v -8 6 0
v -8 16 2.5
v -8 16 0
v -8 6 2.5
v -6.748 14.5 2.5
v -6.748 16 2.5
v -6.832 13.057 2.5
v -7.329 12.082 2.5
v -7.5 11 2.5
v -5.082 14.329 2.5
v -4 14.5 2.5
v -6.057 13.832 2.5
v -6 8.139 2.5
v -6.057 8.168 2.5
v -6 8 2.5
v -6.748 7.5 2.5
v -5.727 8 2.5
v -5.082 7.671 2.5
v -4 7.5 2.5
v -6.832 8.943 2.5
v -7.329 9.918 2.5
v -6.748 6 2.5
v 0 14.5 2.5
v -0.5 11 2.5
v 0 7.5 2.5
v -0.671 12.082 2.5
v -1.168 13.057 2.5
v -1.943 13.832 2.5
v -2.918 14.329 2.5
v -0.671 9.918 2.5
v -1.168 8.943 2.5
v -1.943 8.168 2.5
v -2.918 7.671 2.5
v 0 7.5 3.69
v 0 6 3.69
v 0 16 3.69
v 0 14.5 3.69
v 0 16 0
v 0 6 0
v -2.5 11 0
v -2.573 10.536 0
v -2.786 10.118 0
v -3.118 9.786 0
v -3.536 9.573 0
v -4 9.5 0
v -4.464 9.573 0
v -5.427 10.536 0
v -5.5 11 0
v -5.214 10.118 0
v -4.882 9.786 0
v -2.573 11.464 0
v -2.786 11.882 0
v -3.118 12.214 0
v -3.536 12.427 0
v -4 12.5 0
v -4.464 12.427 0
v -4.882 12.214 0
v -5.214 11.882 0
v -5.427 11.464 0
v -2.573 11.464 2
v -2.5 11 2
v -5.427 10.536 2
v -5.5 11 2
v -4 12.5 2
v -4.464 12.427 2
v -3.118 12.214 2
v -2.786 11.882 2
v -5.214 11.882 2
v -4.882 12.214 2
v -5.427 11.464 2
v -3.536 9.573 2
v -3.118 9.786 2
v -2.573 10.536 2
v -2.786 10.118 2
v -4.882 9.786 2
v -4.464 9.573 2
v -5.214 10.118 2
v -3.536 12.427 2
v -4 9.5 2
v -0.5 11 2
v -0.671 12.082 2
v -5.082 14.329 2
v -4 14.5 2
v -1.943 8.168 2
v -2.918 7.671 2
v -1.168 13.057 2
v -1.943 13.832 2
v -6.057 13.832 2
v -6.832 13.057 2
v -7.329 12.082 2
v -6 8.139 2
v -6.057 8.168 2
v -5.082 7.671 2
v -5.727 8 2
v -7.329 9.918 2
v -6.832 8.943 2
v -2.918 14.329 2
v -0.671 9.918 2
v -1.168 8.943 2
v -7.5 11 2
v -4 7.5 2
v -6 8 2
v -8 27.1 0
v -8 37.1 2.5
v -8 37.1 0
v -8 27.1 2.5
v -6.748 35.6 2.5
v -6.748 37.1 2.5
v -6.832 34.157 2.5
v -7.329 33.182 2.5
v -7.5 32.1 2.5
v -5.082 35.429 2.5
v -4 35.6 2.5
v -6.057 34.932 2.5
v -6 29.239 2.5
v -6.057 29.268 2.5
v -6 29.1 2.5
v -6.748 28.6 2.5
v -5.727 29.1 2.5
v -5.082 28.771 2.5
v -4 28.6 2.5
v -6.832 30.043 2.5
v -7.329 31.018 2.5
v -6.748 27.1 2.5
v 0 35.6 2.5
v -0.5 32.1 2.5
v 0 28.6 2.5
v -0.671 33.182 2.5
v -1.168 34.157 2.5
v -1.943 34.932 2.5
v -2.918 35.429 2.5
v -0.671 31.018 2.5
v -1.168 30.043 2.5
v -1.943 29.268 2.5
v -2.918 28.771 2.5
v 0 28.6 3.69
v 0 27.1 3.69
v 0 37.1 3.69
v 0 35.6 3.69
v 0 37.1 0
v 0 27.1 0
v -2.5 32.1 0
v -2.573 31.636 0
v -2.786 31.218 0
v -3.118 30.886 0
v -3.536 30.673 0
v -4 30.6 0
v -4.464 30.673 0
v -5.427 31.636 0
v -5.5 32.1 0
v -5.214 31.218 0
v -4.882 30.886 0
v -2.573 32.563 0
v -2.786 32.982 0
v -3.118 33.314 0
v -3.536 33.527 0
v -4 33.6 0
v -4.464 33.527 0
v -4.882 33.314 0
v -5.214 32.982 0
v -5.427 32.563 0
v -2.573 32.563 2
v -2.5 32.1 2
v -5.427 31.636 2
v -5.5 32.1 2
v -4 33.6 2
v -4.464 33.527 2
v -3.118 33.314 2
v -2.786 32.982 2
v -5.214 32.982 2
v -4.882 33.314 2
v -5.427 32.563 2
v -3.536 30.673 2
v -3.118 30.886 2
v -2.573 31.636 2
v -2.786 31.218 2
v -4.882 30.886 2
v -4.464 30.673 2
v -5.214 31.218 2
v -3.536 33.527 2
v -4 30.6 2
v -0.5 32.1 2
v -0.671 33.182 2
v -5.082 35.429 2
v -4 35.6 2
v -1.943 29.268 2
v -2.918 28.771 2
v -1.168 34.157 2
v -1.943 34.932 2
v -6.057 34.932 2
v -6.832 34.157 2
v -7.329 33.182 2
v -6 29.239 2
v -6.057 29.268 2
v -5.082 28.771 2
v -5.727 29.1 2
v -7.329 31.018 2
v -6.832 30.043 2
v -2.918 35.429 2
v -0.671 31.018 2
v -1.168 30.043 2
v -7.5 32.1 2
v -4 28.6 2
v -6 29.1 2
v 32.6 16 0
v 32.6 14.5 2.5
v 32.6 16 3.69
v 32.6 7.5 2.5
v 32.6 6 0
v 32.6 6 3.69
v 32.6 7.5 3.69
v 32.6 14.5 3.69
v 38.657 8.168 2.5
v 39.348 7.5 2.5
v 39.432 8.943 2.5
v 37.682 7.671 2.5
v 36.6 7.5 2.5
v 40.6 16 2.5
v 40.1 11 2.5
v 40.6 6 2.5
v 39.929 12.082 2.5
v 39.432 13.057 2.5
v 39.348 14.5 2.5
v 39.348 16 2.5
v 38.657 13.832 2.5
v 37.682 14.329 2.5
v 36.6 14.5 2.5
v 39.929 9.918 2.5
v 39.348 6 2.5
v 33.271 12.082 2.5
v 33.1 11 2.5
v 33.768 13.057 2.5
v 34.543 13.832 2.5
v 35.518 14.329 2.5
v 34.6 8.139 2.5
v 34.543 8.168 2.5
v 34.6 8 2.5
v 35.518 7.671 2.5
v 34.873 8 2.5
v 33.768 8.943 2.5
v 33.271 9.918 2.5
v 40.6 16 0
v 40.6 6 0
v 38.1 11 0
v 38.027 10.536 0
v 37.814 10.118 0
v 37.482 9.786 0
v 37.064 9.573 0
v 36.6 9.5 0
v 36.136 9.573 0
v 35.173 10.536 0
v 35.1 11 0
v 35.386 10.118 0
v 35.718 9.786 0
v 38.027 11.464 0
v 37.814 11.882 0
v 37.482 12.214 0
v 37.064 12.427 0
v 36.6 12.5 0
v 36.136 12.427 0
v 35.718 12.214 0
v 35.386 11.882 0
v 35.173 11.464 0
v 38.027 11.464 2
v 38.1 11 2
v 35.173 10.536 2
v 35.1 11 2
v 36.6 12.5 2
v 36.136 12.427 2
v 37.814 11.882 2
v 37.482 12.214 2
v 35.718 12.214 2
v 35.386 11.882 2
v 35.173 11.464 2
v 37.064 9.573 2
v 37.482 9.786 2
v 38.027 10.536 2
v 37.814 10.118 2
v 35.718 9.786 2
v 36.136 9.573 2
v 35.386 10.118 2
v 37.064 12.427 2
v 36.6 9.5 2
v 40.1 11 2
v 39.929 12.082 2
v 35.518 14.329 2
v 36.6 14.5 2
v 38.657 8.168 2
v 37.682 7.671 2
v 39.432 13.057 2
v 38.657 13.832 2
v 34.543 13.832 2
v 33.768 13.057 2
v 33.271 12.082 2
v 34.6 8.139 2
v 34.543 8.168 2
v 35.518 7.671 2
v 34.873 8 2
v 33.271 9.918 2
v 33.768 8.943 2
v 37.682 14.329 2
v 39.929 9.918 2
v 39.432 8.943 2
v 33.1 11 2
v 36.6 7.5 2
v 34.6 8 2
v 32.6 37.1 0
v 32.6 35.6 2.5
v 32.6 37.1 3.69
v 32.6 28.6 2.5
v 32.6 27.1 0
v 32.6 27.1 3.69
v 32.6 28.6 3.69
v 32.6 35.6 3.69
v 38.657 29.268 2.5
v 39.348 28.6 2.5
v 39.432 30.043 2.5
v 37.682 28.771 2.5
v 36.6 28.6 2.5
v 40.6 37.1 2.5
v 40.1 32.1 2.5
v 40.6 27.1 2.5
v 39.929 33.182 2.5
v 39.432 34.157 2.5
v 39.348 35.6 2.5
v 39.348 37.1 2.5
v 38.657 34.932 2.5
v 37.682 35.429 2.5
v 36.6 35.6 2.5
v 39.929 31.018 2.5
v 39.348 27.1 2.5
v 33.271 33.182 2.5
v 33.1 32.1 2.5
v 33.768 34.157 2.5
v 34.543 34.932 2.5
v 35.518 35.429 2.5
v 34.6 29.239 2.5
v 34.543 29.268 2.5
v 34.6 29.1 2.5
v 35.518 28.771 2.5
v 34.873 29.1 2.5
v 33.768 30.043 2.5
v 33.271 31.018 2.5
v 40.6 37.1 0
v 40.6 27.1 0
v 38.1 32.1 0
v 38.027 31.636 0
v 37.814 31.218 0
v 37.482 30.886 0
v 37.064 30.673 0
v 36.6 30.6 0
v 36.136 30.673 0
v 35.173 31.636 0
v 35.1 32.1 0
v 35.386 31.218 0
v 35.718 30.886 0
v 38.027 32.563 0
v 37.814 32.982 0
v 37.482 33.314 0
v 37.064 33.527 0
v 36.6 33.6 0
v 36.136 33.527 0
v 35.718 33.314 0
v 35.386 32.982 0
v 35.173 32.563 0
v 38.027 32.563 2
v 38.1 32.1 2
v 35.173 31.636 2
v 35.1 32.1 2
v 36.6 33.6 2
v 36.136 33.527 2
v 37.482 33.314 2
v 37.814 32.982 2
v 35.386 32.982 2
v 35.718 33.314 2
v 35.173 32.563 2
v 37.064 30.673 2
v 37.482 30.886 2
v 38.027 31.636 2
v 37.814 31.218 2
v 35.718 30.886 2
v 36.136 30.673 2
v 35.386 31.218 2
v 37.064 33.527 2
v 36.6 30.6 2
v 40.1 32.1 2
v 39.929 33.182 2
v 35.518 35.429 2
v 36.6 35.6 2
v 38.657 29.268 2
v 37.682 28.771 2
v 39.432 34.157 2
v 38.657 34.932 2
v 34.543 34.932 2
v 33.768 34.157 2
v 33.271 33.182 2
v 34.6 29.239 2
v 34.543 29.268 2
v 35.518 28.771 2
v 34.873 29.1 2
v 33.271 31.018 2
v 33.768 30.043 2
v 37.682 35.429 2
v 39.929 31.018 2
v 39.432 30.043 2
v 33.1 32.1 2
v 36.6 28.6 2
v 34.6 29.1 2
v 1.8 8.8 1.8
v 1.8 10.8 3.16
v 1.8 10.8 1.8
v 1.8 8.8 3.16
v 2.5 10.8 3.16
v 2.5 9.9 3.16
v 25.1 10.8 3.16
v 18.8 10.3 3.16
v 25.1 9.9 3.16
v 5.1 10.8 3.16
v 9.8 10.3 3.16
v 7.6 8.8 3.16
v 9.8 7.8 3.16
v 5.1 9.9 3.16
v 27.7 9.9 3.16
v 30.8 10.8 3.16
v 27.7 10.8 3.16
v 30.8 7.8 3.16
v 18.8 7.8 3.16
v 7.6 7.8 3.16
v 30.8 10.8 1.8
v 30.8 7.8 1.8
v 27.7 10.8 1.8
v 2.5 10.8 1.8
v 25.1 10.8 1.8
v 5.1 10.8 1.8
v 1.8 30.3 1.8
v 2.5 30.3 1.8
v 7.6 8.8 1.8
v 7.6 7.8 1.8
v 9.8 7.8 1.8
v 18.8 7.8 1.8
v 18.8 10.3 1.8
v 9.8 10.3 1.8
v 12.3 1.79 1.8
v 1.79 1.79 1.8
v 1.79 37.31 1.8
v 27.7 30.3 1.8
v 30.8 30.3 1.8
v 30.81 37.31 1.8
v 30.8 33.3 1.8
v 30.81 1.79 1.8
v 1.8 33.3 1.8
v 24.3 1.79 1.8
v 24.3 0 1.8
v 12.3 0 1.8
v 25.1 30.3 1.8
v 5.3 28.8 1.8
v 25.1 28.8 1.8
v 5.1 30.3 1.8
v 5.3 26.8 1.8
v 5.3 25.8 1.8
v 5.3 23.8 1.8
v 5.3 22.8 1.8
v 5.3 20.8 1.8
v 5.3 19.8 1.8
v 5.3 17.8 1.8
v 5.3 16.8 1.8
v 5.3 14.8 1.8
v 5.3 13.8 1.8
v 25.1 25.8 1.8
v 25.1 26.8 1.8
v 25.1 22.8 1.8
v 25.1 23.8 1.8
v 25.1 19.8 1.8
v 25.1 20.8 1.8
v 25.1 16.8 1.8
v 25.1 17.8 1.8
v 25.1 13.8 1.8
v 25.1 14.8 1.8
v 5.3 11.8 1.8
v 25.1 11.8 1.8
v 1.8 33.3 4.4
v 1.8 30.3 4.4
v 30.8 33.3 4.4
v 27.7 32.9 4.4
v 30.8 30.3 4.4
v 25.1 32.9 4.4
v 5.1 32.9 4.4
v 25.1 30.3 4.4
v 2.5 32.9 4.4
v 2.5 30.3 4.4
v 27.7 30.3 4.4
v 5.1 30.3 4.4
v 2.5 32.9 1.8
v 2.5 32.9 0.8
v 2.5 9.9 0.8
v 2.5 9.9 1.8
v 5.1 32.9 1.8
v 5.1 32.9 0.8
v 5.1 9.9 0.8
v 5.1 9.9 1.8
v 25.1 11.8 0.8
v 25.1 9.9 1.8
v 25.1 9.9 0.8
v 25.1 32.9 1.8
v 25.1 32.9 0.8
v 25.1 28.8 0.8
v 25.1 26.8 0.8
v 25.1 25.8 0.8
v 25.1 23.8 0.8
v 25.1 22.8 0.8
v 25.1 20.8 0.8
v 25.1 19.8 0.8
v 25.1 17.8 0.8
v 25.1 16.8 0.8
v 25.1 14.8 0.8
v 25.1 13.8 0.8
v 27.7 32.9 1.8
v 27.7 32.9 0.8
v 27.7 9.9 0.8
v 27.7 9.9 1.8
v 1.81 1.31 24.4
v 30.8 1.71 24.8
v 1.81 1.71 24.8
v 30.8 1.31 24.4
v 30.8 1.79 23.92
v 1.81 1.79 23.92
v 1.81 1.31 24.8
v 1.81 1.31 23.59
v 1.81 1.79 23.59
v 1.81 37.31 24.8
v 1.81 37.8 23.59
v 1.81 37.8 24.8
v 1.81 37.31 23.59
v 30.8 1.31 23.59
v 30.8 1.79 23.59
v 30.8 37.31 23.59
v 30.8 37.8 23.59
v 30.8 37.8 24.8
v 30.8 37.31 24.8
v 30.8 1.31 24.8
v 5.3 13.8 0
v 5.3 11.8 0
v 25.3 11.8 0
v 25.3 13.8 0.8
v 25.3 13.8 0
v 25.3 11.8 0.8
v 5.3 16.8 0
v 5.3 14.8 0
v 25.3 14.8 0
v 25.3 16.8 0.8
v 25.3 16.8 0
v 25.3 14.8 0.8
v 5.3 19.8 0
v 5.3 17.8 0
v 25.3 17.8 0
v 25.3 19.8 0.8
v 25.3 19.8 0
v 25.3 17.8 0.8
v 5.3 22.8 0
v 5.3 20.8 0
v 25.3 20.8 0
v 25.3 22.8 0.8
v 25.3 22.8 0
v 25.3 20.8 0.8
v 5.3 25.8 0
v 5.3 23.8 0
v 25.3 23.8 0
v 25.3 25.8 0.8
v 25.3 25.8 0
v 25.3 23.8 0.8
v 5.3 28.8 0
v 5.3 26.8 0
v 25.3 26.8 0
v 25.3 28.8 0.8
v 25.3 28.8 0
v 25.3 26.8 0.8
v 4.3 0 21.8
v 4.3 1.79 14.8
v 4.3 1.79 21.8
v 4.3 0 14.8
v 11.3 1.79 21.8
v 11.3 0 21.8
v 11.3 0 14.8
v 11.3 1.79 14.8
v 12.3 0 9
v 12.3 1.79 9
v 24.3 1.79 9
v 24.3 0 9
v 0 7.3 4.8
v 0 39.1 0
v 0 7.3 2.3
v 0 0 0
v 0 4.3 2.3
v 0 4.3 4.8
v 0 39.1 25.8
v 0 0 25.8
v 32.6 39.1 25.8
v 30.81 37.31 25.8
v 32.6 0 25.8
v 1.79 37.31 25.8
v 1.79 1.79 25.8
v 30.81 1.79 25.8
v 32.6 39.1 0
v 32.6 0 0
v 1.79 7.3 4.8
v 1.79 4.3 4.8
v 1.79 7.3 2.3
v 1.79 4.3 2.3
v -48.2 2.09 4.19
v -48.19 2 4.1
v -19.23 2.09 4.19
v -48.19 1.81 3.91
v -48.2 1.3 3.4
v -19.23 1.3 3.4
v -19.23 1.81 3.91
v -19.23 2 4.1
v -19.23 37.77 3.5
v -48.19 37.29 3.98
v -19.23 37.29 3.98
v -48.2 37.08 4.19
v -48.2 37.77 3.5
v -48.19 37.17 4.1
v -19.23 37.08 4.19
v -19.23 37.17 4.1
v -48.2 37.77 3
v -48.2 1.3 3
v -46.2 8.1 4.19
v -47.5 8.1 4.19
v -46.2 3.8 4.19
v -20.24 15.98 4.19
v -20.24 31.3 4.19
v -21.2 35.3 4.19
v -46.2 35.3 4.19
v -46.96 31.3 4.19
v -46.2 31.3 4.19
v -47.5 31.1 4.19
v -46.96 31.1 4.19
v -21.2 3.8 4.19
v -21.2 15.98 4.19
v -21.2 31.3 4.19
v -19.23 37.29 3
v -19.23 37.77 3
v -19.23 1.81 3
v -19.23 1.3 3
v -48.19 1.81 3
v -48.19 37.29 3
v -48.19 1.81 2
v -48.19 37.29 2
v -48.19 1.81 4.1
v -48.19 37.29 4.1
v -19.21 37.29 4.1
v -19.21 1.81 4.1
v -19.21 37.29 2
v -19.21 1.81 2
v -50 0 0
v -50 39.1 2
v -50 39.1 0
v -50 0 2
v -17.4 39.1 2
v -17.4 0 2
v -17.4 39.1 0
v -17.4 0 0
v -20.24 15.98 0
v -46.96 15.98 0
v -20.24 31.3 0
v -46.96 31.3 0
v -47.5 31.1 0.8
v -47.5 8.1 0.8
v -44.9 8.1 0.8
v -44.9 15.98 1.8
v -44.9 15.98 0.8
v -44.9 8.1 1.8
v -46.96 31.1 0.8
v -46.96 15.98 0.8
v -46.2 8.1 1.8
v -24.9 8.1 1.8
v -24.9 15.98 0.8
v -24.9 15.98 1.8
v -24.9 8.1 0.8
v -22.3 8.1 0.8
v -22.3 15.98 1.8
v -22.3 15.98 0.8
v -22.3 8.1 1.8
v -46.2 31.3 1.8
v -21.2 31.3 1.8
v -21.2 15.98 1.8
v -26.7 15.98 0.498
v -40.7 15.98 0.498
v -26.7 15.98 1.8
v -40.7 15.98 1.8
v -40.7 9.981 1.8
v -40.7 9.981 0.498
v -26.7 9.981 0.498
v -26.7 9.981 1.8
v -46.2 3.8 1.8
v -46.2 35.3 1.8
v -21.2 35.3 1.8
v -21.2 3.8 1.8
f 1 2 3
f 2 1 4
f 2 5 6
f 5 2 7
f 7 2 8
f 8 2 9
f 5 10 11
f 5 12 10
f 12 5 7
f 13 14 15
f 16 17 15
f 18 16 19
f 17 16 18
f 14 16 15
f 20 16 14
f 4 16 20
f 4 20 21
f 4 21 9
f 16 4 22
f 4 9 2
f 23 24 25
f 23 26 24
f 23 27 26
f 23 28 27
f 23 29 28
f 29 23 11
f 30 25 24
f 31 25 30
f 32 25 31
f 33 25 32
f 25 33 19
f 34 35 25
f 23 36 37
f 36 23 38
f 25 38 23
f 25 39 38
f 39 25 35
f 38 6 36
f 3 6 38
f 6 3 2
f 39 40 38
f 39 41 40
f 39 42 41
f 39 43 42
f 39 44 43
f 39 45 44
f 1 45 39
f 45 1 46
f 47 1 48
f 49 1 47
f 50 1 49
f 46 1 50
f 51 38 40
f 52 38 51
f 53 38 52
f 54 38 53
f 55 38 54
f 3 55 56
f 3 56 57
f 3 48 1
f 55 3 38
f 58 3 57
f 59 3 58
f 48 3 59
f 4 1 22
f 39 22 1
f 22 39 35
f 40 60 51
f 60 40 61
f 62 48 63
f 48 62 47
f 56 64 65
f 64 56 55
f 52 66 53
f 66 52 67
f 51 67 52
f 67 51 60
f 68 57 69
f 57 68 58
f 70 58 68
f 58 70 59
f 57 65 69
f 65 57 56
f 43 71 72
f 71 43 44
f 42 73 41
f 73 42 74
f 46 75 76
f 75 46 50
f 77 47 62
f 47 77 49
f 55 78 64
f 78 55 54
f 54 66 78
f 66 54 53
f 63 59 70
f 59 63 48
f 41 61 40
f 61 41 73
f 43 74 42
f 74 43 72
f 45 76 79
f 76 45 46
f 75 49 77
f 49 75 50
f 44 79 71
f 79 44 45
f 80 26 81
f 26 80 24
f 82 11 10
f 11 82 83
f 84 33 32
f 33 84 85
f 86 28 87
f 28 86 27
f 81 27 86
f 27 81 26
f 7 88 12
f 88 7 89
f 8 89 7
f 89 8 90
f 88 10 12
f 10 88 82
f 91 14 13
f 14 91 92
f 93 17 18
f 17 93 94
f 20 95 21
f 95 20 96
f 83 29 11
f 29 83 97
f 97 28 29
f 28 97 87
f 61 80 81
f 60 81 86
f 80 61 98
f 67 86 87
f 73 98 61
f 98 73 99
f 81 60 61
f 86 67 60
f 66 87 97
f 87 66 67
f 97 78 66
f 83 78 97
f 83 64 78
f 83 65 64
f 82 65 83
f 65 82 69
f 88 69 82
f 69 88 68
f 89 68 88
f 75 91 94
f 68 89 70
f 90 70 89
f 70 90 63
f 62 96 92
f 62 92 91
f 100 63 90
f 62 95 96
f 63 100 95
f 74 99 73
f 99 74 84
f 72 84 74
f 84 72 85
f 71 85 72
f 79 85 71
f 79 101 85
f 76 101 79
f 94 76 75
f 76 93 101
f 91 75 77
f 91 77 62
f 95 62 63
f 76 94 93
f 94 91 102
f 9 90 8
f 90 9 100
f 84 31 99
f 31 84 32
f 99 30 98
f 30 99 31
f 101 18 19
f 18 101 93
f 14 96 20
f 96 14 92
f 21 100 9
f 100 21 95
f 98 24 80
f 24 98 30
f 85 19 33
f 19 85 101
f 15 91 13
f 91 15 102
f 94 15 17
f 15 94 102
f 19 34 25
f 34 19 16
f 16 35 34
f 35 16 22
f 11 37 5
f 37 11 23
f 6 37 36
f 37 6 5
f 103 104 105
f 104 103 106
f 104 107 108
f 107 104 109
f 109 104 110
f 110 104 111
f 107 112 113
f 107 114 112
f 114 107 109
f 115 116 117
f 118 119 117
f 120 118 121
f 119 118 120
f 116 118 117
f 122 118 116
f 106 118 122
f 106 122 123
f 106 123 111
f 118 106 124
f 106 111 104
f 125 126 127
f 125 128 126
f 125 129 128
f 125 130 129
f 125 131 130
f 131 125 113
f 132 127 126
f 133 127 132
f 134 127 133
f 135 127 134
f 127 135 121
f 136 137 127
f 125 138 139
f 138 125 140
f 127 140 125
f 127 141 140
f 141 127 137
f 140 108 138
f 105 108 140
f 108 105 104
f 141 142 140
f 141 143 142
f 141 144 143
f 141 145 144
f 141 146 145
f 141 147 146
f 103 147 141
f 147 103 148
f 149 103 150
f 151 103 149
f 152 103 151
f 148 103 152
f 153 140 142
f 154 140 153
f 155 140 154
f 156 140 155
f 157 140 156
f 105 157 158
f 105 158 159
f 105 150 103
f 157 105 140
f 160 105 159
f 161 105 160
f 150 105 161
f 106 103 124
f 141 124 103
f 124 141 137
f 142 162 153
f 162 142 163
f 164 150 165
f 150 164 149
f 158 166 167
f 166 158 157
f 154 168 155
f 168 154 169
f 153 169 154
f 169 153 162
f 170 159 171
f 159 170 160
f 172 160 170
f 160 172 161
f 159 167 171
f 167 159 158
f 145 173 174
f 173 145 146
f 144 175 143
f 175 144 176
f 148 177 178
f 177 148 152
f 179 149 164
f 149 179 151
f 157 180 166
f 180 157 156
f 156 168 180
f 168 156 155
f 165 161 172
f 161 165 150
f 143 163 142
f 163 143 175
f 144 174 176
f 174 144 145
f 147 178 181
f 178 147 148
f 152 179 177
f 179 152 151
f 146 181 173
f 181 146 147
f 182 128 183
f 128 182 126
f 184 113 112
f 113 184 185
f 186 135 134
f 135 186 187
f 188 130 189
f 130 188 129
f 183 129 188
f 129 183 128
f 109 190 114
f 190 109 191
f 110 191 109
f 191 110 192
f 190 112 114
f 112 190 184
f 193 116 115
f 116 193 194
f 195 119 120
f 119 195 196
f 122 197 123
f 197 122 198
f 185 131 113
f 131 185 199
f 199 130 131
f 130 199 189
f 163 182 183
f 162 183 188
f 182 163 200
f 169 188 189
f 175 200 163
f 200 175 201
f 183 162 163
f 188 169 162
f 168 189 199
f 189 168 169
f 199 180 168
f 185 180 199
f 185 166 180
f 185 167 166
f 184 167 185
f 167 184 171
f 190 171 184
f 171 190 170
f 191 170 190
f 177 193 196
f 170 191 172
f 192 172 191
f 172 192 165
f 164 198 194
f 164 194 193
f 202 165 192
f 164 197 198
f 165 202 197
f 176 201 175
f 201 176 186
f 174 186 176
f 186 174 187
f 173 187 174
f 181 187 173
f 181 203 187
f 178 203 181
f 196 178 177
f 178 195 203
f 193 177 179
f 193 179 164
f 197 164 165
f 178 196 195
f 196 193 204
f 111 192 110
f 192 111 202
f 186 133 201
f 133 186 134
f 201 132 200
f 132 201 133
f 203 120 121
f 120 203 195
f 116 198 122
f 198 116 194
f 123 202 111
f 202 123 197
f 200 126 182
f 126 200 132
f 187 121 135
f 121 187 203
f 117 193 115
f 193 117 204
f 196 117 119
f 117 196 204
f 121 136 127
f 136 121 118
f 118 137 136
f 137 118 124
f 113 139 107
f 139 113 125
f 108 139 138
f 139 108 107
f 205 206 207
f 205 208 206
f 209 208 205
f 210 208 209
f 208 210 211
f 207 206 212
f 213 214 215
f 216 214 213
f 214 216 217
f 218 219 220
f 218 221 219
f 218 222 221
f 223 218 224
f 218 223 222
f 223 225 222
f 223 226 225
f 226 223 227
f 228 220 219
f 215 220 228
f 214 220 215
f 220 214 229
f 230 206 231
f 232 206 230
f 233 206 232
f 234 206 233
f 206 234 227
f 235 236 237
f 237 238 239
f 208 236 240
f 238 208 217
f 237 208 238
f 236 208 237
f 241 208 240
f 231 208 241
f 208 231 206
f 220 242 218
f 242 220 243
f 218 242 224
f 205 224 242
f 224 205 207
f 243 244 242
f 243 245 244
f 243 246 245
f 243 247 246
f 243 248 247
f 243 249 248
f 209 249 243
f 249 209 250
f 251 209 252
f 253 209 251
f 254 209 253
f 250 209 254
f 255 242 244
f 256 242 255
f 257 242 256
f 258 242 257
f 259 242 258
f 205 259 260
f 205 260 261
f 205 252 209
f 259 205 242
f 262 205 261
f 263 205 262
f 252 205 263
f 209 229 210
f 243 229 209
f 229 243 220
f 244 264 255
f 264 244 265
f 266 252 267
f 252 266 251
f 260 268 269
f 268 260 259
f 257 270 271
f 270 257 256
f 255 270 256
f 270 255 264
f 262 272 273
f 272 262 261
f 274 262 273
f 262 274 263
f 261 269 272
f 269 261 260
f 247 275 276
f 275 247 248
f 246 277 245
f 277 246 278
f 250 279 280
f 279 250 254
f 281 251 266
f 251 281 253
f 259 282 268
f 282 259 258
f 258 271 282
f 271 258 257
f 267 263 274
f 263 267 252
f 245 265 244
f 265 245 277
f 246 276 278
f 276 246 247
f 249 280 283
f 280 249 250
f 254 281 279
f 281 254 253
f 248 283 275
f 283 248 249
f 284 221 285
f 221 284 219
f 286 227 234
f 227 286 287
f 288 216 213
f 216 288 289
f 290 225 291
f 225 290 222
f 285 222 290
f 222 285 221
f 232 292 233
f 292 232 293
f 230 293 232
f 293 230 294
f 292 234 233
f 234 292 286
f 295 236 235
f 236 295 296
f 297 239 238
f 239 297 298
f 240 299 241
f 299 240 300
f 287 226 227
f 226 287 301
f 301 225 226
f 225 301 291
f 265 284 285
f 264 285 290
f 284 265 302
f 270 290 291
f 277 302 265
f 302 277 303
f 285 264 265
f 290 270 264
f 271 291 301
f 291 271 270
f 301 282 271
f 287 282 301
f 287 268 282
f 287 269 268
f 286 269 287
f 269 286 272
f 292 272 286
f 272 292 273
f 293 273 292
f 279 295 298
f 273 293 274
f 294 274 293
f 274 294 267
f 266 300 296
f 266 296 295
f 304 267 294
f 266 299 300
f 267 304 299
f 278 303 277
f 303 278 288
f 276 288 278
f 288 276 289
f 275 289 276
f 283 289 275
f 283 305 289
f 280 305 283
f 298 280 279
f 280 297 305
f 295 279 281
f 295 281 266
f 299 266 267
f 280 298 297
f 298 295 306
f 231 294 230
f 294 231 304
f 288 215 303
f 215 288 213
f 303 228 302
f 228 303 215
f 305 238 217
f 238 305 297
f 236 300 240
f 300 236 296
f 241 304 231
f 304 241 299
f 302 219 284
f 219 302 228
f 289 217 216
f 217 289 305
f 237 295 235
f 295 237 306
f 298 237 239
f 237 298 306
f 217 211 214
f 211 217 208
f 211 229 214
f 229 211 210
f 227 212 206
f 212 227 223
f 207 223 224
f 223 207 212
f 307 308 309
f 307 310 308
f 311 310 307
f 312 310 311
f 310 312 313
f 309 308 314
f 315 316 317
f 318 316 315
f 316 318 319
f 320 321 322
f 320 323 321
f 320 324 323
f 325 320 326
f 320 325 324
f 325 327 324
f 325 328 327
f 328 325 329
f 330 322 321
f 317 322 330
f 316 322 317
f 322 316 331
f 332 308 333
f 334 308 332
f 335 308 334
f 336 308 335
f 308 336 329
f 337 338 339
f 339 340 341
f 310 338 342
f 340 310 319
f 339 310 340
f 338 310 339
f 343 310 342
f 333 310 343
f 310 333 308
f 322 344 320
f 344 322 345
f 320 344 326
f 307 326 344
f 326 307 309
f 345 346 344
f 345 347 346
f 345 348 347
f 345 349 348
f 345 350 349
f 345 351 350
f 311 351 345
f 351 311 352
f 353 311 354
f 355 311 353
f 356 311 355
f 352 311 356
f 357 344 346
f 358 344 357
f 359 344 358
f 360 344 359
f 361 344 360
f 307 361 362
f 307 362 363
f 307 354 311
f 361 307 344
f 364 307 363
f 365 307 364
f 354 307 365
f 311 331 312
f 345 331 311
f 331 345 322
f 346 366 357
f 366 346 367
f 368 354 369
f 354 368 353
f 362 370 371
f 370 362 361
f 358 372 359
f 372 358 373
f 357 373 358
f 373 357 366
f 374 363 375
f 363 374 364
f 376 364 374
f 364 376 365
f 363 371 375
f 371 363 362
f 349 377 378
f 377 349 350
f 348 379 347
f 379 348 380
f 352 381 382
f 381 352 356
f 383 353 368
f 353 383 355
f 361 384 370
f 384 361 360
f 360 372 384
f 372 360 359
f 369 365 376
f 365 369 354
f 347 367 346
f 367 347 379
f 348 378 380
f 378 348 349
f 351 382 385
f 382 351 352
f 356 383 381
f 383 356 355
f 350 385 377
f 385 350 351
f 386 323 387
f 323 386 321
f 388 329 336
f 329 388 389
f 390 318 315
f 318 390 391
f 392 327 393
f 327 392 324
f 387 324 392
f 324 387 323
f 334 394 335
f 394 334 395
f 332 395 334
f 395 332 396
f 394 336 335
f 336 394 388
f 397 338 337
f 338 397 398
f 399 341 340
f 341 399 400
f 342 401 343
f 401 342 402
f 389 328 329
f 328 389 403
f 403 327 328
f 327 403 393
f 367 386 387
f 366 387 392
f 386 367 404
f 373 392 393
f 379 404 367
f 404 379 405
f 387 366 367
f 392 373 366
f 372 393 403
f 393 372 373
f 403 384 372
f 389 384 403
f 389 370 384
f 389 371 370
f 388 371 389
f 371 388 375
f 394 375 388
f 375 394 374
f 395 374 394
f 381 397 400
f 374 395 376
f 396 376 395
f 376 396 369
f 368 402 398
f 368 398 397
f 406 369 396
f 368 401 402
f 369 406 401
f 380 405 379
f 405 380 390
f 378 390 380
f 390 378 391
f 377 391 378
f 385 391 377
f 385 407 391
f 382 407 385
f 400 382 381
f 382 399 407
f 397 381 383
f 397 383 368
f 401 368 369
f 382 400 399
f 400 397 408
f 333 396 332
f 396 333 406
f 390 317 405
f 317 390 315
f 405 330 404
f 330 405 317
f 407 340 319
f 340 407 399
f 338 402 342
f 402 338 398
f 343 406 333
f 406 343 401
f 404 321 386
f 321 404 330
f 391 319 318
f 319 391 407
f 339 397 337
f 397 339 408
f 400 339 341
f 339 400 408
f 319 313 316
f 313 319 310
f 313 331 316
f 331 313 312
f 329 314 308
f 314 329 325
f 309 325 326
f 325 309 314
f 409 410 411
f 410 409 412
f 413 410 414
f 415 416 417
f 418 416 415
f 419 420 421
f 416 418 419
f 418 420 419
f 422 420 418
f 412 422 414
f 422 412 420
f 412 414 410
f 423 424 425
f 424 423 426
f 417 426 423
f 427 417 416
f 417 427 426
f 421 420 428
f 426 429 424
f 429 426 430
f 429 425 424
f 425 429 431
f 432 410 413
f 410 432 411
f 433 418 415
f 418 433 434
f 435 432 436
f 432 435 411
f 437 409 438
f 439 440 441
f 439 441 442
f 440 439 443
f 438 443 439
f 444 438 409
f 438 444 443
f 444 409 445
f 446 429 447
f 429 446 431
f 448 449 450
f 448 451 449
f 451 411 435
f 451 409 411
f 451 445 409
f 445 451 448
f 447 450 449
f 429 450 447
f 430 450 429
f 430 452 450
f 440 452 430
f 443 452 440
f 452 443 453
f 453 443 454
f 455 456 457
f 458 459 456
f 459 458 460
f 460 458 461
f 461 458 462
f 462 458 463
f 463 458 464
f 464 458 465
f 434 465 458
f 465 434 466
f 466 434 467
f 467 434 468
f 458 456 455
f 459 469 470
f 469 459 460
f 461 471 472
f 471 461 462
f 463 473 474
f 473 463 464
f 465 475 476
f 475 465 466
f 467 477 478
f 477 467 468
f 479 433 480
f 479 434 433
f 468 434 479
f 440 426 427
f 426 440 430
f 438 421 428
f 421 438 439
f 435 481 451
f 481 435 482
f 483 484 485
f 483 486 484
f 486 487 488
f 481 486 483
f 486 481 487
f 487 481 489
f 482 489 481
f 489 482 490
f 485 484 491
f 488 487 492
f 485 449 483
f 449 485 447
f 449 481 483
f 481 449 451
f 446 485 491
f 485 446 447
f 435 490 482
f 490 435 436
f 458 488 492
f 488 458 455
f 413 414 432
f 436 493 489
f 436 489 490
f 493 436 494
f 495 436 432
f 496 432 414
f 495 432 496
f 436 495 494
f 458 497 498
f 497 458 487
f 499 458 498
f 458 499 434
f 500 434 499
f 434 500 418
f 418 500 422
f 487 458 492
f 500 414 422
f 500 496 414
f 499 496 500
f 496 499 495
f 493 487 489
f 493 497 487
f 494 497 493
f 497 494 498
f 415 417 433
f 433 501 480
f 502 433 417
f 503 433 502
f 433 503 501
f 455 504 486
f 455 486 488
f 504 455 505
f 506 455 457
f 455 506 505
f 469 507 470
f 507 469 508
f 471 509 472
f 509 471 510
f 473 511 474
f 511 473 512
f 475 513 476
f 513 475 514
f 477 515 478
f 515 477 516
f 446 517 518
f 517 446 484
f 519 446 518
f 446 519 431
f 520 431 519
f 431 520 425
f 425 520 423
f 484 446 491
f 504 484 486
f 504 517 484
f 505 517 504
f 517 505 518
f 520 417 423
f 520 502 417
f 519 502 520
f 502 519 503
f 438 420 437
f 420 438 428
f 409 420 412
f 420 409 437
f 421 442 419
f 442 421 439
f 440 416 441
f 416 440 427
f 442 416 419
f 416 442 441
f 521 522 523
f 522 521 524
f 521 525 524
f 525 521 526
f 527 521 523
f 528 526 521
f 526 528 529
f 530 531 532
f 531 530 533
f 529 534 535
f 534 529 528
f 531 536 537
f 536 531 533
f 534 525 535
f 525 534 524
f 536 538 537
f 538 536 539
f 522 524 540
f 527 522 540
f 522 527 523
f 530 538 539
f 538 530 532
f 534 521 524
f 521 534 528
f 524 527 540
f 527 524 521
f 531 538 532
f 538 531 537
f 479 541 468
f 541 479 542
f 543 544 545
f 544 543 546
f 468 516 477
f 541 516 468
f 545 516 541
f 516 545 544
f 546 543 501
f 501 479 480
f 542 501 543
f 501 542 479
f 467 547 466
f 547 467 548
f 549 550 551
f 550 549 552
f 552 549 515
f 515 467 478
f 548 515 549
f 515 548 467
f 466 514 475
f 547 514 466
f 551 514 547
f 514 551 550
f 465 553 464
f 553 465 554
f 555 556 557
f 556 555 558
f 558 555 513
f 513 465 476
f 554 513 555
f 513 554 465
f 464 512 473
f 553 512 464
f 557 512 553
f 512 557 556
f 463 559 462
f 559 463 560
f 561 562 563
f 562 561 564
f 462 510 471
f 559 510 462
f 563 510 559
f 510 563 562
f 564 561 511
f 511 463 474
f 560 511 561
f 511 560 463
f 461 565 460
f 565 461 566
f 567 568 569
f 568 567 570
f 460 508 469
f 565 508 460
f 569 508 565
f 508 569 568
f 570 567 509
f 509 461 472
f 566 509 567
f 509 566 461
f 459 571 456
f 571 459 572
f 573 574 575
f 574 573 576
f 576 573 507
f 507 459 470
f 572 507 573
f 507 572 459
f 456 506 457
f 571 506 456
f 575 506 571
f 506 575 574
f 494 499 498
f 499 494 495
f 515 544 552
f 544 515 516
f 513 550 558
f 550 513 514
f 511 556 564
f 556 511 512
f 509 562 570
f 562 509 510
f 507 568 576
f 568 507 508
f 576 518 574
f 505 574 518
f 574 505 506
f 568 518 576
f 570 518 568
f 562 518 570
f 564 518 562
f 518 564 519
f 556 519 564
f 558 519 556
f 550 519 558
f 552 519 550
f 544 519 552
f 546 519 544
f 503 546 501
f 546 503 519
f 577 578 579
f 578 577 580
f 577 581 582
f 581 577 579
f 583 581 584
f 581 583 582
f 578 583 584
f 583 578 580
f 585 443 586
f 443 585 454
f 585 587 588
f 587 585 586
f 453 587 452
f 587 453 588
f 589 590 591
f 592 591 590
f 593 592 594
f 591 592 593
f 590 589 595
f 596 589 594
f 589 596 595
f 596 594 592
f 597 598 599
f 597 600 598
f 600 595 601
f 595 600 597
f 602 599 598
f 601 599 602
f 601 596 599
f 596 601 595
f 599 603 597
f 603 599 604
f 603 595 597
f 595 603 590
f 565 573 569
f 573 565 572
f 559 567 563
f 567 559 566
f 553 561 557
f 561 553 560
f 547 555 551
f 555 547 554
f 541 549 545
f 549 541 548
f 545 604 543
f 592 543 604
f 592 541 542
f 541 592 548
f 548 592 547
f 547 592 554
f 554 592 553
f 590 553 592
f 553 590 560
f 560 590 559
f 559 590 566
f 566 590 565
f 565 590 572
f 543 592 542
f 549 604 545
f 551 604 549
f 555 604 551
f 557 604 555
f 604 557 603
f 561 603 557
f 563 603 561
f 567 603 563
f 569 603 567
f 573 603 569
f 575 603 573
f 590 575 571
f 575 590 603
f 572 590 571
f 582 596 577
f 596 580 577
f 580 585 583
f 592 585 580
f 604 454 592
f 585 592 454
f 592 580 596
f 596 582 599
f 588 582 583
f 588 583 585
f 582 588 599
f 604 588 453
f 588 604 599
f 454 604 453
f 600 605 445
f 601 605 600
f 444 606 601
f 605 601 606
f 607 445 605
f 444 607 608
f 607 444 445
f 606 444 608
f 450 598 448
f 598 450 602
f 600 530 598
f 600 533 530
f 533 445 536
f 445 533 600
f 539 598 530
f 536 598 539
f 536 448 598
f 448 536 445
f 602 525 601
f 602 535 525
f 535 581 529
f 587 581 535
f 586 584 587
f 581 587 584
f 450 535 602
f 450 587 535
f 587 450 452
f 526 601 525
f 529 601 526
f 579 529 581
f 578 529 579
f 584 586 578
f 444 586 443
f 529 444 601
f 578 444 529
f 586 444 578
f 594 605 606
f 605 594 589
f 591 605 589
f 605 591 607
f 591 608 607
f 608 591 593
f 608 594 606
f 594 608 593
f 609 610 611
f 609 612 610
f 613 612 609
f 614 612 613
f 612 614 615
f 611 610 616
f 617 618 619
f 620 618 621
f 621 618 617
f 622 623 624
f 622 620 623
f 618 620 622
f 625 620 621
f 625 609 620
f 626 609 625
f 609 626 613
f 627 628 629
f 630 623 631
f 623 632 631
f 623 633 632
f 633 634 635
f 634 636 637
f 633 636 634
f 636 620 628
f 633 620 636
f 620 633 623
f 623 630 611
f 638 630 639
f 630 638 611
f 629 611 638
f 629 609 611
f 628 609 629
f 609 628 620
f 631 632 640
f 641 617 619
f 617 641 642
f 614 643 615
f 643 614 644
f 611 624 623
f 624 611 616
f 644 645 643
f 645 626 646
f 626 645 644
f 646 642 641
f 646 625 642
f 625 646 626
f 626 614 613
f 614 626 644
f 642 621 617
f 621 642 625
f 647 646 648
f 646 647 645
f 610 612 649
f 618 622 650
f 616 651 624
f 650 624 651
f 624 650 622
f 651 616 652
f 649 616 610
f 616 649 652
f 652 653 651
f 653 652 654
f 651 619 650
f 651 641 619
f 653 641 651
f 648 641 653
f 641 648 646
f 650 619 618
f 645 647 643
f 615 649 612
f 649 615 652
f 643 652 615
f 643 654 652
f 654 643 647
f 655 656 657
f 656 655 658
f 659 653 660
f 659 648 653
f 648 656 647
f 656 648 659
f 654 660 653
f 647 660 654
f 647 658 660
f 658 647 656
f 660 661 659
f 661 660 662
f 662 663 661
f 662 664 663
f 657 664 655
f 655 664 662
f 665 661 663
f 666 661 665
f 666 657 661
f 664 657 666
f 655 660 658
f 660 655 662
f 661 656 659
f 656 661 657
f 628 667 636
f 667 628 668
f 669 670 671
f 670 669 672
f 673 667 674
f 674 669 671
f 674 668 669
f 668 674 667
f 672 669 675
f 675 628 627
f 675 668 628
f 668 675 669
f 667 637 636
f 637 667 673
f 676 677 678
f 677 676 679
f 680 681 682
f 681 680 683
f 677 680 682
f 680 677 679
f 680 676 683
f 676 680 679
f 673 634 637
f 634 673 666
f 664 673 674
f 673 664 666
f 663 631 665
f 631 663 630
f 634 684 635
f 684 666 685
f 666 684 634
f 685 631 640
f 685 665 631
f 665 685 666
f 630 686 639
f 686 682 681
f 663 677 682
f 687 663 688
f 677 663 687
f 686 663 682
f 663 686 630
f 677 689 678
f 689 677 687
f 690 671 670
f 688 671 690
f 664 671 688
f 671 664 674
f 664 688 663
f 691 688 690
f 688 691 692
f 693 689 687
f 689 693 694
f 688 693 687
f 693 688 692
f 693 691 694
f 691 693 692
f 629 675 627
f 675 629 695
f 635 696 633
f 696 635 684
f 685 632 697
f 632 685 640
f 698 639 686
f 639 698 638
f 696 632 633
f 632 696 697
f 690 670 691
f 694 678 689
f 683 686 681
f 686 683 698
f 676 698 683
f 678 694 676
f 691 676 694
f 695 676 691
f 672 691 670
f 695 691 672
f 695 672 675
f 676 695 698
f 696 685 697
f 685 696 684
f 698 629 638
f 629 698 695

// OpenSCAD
//
// WeMOS D1 Mini Stack Enclosure Script
// This Version is inspired from https://www.thingiverse.com/thing:1776349/#files
//
// This script was written to generate a suitable 3D printed enclosure for a WeMOS "stack" of shields.
// Since there are a variety of connectors, sizes and arrangements, the decission was to let the customizer
// allow for various positionings of each shields port.
//
// To use, you will need to assemble your device put it on a flat surface (e.g. table) and measureeach layer. 
// For measuring you need the distance from your flat surface to the lower end of the opening in the case.
//  - the total innerSizeZ (height) of the stack
//  - the inner offsets for any shields that require an opening in the case.
//
// For instance, We have the following Stack:
//
// +----------------+
// | SD Card Shield |
// +----------------+
// | Battery Shield |
// +----------------+
// | WeMOS D1 Mini  |
// +----------------+ 2 mm
//
// All have stackable headers, that have had their pins trimmed to make the stack as short
// as possible.  The resulting measurements of the stack yield the default values of this script.
//

/* [inner Height Z] */
// Final height of the stack measured when placing the sole stack on a flat surface.
//innerHeightZ = 58.7;
innerHeightZ = 24; //18.4;


/* [Shield Ports] */

// Distance from the bottom of PCB Board to the bottom of the usb connector opening (-99 to omit)
usbHeight = 1.0;

// Distance from the bottom of PCB Board to the bottom of the microsd shield opening (-99 to omit)
//microsdHeight = 30;
// microsdHeight = 8;
 microsdHeight = -99;

// Distance from the bottom of PCB Board to the bottom of the battery shield connector opening (-99 to omit)
//batteryHeight = 18.0;
//batteryHeight = 15;
batteryHeight = -99;

// Distance from the bottom of PCB Board to the bottom of the DC Power shield connector terminal opening (-99 to omit)
//dcPowerHeight=25;
dcPowerHeight=-99;

// Distance from the bottom of PCB Board to the bottom of the relay shield connector terminal opening (-99 to omit)
relayHeight = 38.0;

// Show Base housing
showBase=true;

/* [LID] */

// There are visible cutouts in the lid for 
lidHasVisiblePinoutSlits=false;

// The lid should contain a cutout connecting the PINs
lidCutOutType="LCD"; // [ LCD:LCD Shield , DHT:Dht Shield,DHThorizontal:Dht Shield, BUTTON:Button Shield , NONE:No cutout]

// Do you want the Lid to show up
showLid=true;

//Side and Front slits for letting warm air out
airSlits=false;

/* [Others] */
wallThickness = 1.8;

// cut through at Bottom for Pins
bottomHasPinoutSlits=true;

// Add mounting clips with screw holes a bottom
numberOfBaseMountingClips=4;

// show some Examples
showExamples=false;

// show each Tape once
showAllOnce=false;

// ---------------------------------------------------------------------------------------------------------
// do not need to modify anything below here
// ---------------------------------------------------------------------------------------------------------
/* [Hidden] */

extraGap=0.2;
printerWobble=0.01;
printerWobbleXYZ=printerWobble*[1,1,1];
printerWobbleXYZ2=printerWobbleXYZ*2;

$fn=20;

// Final outerSizeZ of the stack walls.
// outerSizeZ = 36.0;

innerSizeX = 29; //26.70;
innerSizeY = 35.5;
//innerSizeZ = innerHeightZ;


holeDiameter = 20.0;

// Offset of all stacked Boards because of the WIFI Antenna
antennaOffsetY=6.2;
lcdDimensions=[26.5,15.1,4.5]
              +2*printerWobble*[1,1,0];

// Size of the slits for pins of PCB board
slitDimension=[2.6,23.0,10.0];


/* calculated */
extraGap2=2*extraGap;

// ===================================================
// Main
// ===================================================

if (showAllOnce){
    translate([0,-50,0])  
        LidExamples();
    
    BaseExamples();

} else {

    // base
    if (showBase)
        base(innerSizeZ=innerHeightZ-wallThickness,numberOfBaseMountingClips=numberOfBaseMountingClips);

    // lid
    if (showLid)
        translate([-50,0,0])   
            lid(lidCutOutType=lidCutOutType);


    // All kind of examples
    if ( showExamples)
        translate([0,200,0])  
            examples();

}

// ===================================================
// Modules
// ===================================================

module examples(){
    translate([0,-50,0])  {
        LidExamples();
    translate([0,-45,40])  
        rotate([270,0,0]) 
            LidExamples();
    }
    
    BaseExamples();

}


module BaseExamples(){
        translate([0,0,0])   {
            translate([000,0,0])     base(innerSizeZ=17,        numberOfBaseMountingClips=0);
            translate([050,0,0])     base(innerSizeZ=17,        numberOfBaseMountingClips=2);
            translate([100,0,0])     base(innerSizeZ=17,        numberOfBaseMountingClips=4);
        }
        
        translate([0,60,0])  {
            translate([000,0,0])     base(innerSizeZ=12.5, numberOfBaseMountingClips=0);
            translate([040,0,0])     base(innerSizeZ=22.5, numberOfBaseMountingClips=0);
            translate([080,0,0])     base(innerSizeZ=36,   numberOfBaseMountingClips=0);
            translate([120,0,0])     base(innerSizeZ=47,   numberOfBaseMountingClips=0);
        }
        
        translate([0,120,0])   {
            translate([000,0,0])     base(innerSizeZ=27);
            translate([040,0,0])     base(innerSizeZ=27, dcPowerHeight=12,  microsdHeight=0, batteryHeight=0, relayHeight=0 , numberOfBaseMountingClips=0);
            translate([080,0,0])     base(innerSizeZ=27, dcPowerHeight=0,  microsdHeight=12, batteryHeight=0, relayHeight=0 , numberOfBaseMountingClips=0);
            translate([120,0,0])     base(innerSizeZ=27, dcPowerHeight=0,  microsdHeight=0, batteryHeight=12, relayHeight=0 , numberOfBaseMountingClips=0);
            translate([160,0,0])     base(innerSizeZ=27, dcPowerHeight=0,  microsdHeight=0, batteryHeight=0, relayHeight=12 , numberOfBaseMountingClips=0);
        }

}

module LidExamples(){
        translate([000,0,0])   lid(lidCutOutType="BUTTON");
        translate([040,0,0])   lid(lidCutOutType="LCD");
        translate([080,0,0])   lid(lidCutOutType="DHT");
        translate([120,0,0])   lid(lidCutOutType="HOLE");
        translate([160,0,0])   lid(lidCutOutType="NONE");

}


module lcdCutOut(){
   cube(lcdDimensions+extraGap*[1,1,0]);

    // Flat cable for connection
    cableX=14;
    cableY=6;
    cableZ=4;
    translate([lcdDimensions[0]/2-cableX/2,-cableY+.001,.5])
        cube([cableX,cableY,cableZ]);
}


module pinHoleSlits(visibleFromOutside=1){
    
    slitOffsetY=wallThickness
                +innerSizeY
                -slitDimension[1]
                -antennaOffsetY;
    
    translate([0,0,visibleFromOutside==1?-.01:+.8])
        translate([.7,slitOffsetY,0])
            for ( x=[0,22.6]){
                translate([x,0,0])
                    cube(slitDimension);
            }
}


// ========================================
// Lid
// ========================================

module lid(lidCutOutType="BUTTON"){
    outerSizeX = innerSizeX + (2 * wallThickness);
    outerSizeY = innerSizeY + (2 * wallThickness);
//    outerSizeZ = innerSizeZ + (2 * wallThickness);
    diameterButton=8;
    
    difference() {
        union () {
            // Lid Base Plate
            translate([0, 0, 0.0]) cube([outerSizeX, outerSizeY, 2.0]);

            // Lid inner part
            translate([ wallThickness+printerWobble, wallThickness+printerWobble,wallThickness]) {
                color("green")
                    cube([innerSizeX-2*printerWobble, innerSizeY-2*printerWobble, 2.3]);
                LidNotch(wobble=-1);
             }
        }
        
        // Space for PCB Board
        innerFrameOffset=2;
        translate([ wallThickness+innerFrameOffset, wallThickness+innerFrameOffset,wallThickness]) 
                cube([innerSizeX-innerFrameOffset*2, innerSizeY-innerFrameOffset*2, 4]);
        
        translate([wallThickness,0,0])
            pinHoleSlits(visibleFromOutside=lidHasVisiblePinoutSlits);
        
        // Lid Cutout
        if(lidCutOutType=="LCD"){
                translate(wallThickness*[1,1,-0.001]
                        +[innerSizeX/2,innerSizeY,0])
                        translate([-lcdDimensions[0]/2,-lcdDimensions[1],0]
                                  +[0,-antennaOffsetY,0]
                                ) 
                            lcdCutOut();

                // Text LCD
                /*
                translate([wallThickness+innerSizeX/2,9,-0.01])
                    linear_extrude(height = 0.5) 
                        rotate([180,0,0])
                            text("LCD", ,size=7,halign="center");
                */
        } else if (lidCutOutType=="DHT") {
                dhtSensorDimensions=[12.1+extraGap2,5.6+extraGap2,6];
                translate(wallThickness*[1,1,-0.001]
                         +[innerSizeX/2,0,0])
                    translate([-dhtSensorDimensions[0]/2,16.8,0] -printerWobbleXYZ   ) 
                        cube(dhtSensorDimensions+printerWobbleXYZ2);

                // Text DHT
                translate([wallThickness+innerSizeX/2,32,-0.01])
                    linear_extrude(height = 0.5) 
                        rotate([180,0,0])
                            text("DHT", ,size=7,halign="center");   
        } else if (lidCutOutType=="LED") {
                dLED=4.2;
                translate(wallThickness*[1,1,1.001]
                         +[innerSizeX/2,0,0])
                    translate([-0,15.2,0] -printerWobbleXYZ   ) 
                        cylinder(d1=dLED,d1=dLED+1,h=4,center=true);

                // Text DHT
                translate([wallThickness+innerSizeX/2,32,-0.01])
                    linear_extrude(height = 0.5) 
                        rotate([180,0,0])
                            text("LED", ,size=7,halign="center");   
        } else if (lidCutOutType=="DHThorizontal") {
                dhtSensorDimensions=[12.1+extraGap,15.6+extraGap,6];
                translate(wallThickness*[1,1,-0.001]
                         +[innerSizeX/2,0,0])
                    translate([-dhtSensorDimensions[0]/2,0.6,0] -printerWobbleXYZ   ) 
                        cube(dhtSensorDimensions+printerWobbleXYZ2);

                // Text DHT
                translate([wallThickness+innerSizeX/2,32,-0.01])
                    linear_extrude(height = 0.5) 
                        rotate([180,0,0])
                            text("DHT", ,size=7,halign="center");   
        } else if (lidCutOutType=="BUTTON" ){
                translate(wallThickness*[1,1,-0.001]
                         +[innerSizeX/2,innerSizeY,0])
                    translate([0,-innerSizeY/2, 2.5-0.01]) 
                        cylinder(h = 5 , d = diameterButton+2*printerWobble, center = true);

                // Text Button
                translate([wallThickness+innerSizeX/2,35,-0.01])
                    linear_extrude(height = 0.5) 
                        rotate([180,0,0])
                            text("Button", ,size=7,halign="center");   
        } else if (lidCutOutType=="HOLE" ){
                translate(wallThickness*[1,1,-0.001]
                         +[innerSizeX/2,innerSizeY,0])
                    translate([0,-innerSizeY/2, 2.5-0.01]) 
                        cylinder(h = 5 , d = holeDiameter, center = true);

                // Text Button
                translate([wallThickness+innerSizeX/2,35,-0.01])
                    linear_extrude(height = 0.5) 
                        rotate([180,0,0])
                            text("Button", ,size=7,halign="center");   

        } else if (lidCutOutType=="NONE"){
        } else {
            echo("!!!!!!!!!!!!!!! Error Wrong Type for lidCutOutType");
        }
        
        
    }

    if (lidCutOutType=="BUTTON" ){
        buttonGap=.3;
        color("blue")
       translate([-20,innerSizeY/2, 0]) 
            difference(){
                union(){
                    cylinder(h = 2 , d = diameterButton+4 );
                    translate([0,0,2])
                    cylinder(h = wallThickness+1  , d = diameterButton);
                }
                
                // inner Hole
                innerHoleZ=3;
                translate([-3.8/2,-3.8/2, -.001]-printerWobbleXYZ) 
                   cube([3.8,3.8,innerHoleZ-.2]+printerWobbleXYZ2);
        }
    }

}


module LidNotch(wobble=1){
    notchHeight=1.2;
    notchAdditionalSize=.5*[0,1,0];
    notchInnerSize=[innerSizeX-2*printerWobble, innerSizeY-2*printerWobble, notchHeight];
    notchOuterSize=notchInnerSize + 2*notchAdditionalSize + printerWobbleXYZ*wobble;

    translate([ wobble*printerWobble, wobble*printerWobble,2.4]
                -notchAdditionalSize
                -[0,0,notchHeight]) 
        color("blue")
       difference(){
           cube(    notchOuterSize);
           for (y=[0,.1+notchOuterSize[1]]){
                translate([-.1,y,.4])            
                    rotate([wobble*-45,0,0])
                        cube([notchOuterSize[0]+1,4,4]);
           }
//            translate(notchAdditionalSize+[0,0,-.1])            cube(    notchInnerSize+[0,0,2.2]);

    }
}



// ========================================
// Base Modules
// ========================================


module baseBars(){
    difference(){
        union(){
            translate([0,  6,    0]) cube([innerSizeX, 3, 1.36]);
            translate([0, 28.5,  0]) cube([innerSizeX, 3, 2.6]);
        }
        
        // Cutouts
        translate([0,   5, 0]) cube([5.8, 2, 2]); // cutout reset 
        translate([8, 2.5, 0]) cube([9,   6, 2]); // cutout USB
        
        pinHoleSlits(visibleFromOutside=1);
    }
}

module BaseMountingClips(numberOfBaseMountingClips=4){
    sizeBaseMountX=8;
    sizeBaseMountY=10;
    sizeBaseMountZ=2.5;
    diameterBaseClipHoles=3;
    
    outerSizeX = innerSizeX + (2 * wallThickness);
    outerSizeY = innerSizeY + (2 * wallThickness);
//    outerSizeZ = innerSizeZ + (2 * wallThickness);


        yRange= (numberOfBaseMountingClips==4)?[6,outerSizeY-sizeBaseMountY-2]
                :(numberOfBaseMountingClips==2)?[outerSizeY/2-sizeBaseMountY]:[];

    
    for( x=[-sizeBaseMountX,outerSizeX]){
//        for( y=[0,outerSizeY-sizeBaseMountY]){
        for( y=yRange){
            translate([x,y,0])
                BaseMountingClip(
                    sizeBaseMountX=sizeBaseMountX,
                    sizeBaseMountY=sizeBaseMountY,
                    sizeBaseMountZ=sizeBaseMountZ,
                    diameterBaseClipHoles=diameterBaseClipHoles,
                    x=x);
        }
    }
}

module BaseMountingClip(sizeBaseMountX=8,
                        sizeBaseMountY=10,
                        sizeBaseMountZ=2.5,
                        diameterBaseClipHoles=3,
                        x=0
                        ){
    union(){
        difference(){
            cube([sizeBaseMountX,sizeBaseMountY,sizeBaseMountZ]);

            // central hole for screw
            translate([sizeBaseMountX/2,sizeBaseMountY/2,-0.01])
                cylinder(d=diameterBaseClipHoles,h=sizeBaseMountZ+1);

            //  hole for screw-head
            translate([sizeBaseMountX/2,sizeBaseMountY/2,2])
                cylinder(d=diameterBaseClipHoles+4,h=sizeBaseMountZ+1);

            translate([2,2,2])
                cube([sizeBaseMountX-3*2,sizeBaseMountY-3*2,sizeBaseMountZ]);
        }
        
        reinforcementY=1.5;
        for(y=[0,sizeBaseMountY-reinforcementY])
            difference(){
                translate([0,y,2])
                    cube([sizeBaseMountX,reinforcementY,2]);
                translate([sizeBaseMountX/2,reinforcementY/2+y,4])
                    rotate([0,(x>10)?10:-10,0])
                            cube([sizeBaseMountX+1,reinforcementY+.1,2],center=true);
            }
    }        
}


// ========================================
// Base
// ========================================
module  base(
    innerSizeZ=innerHeightZ,
    numberOfBaseMountingClips=4,
    dcPowerHeight=dcPowerHeight,
    microsdHeight=microsdHeight,
    batteryHeight=batteryHeight,
    relayHeight=relayHeight 
    ){
    
    outerSizeX = innerSizeX + (2 * wallThickness);
    outerSizeY = innerSizeY + (2 * wallThickness);
    outerSizeZ = innerSizeZ + (2 * wallThickness);

    BaseMountingClips(numberOfBaseMountingClips=numberOfBaseMountingClips);

    translate(wallThickness*[1,1,1])
        union() {
            baseBars();


            difference () {
                    // Set Outer Base level to -wallThickness. So coordinate zero is at front lower inner corner.
                    // So we can measure all other Heights and positions from the front corner of the Wemos PCB (-2mm)
                    translate(-wallThickness*[1,1,1]) 
                        cube([outerSizeX, outerSizeY, outerSizeZ]); 
                    translate([-1,-1,0]*printerWobble)
                        cube([innerSizeX+2*printerWobble, innerSizeY+2*printerWobble, innerSizeZ+wallThickness+.001]);


                   if (airSlits){
                       // Side Air slits
                        for ( z=[3.8:2:innerSizeZ-4])
                            for ( x=[0,outerSizeX-1])
                                for(y=[1.2,outerSizeY-10])
                                    translate([-5,-1,0]+[x,y,z])
                                        cube([8, 7.2, .8]);

                        // Front Air slits
                        for ( z=[3.8:2:innerSizeZ-4])
                            for ( x=[2.5,outerSizeX-6])
                                for(y=[-4,outerSizeY-6])
                                    translate([-2,-1,0]+[x,y,z])
                                        cube([4, 7.2, .8]);
                     }

                     translate([0,0,innerSizeZ+wallThickness+.2]) {
                         mirror([0,0,1])
                                LidNotch(wobble=1);
                     }

                    // Cut-out in Basement
                    bodenGitter=1;
                    translate([1, 0, -wallThickness ]) 
                        if (bodenGitter){
                            for ( y=[10:3:25])
                                translate([2.5,y,-.1])
                                    cube([20,2,20]);
                                }
                        else 
                            translate([innerSizeX,innerSizeY,-0.01]/2) 
                                    cylinder(h = wallThickness+4 , d = holeDiameter);

                    // Cutouts for solder Pins
                    translate([0,0,-wallThickness])                     
                        pinHoleSlits(visibleFromOutside=bottomHasPinoutSlits);
                    
                    // Reset Hole
                    translate([-wallThickness-.01-1, 2.5, 0.5]) 
                        cube([4,3, 2.5]);

                    // =======================
                    // Front Holes                    
                    textX=-innerSizeX/2-wallThickness+.7;
                    translate([innerSizeX/2,-wallThickness-0.01,0]) {
                        // Antenne
                        translate([ -12, 0, 13]) cube([7, 20, 7]);
                        // USB
                        if (usbHeight != 0.0)  {
                            translate([ -4, 0, -1+usbHeight]) cube([12,4 ,1+6.2]);

                            // Front Text
                            /*
                            translate([textX,0.5,2+usbHeight])
                                rotate([90,0,0]) 
                                    linear_extrude(height = 0.7,width=12) 
                                        text("USB", ,size=2.3,halign="left"); 
                            */
                        }
                        
                        // Micro USB Shield
                        if (microsdHeight != 0.0)  {
                            translate([ -6, 0,microsdHeight]) 
                                    cube([ 15,4 ,3]);
                            // Front Text
                            translate([textX,0.5,1+microsdHeight]) rotate([90,0,0]) text("SD", ,size=2,halign="left"); 
                        }
                        
                        // Battery Shield
                        if (batteryHeight != 0.0) {
                            translate([-innerSizeX/2+4.7, 0,batteryHeight]) cube([ 7.3, 6,8]);
                            translate([-innerSizeX/2+13.8, 0,batteryHeight]) cube([ 9, 6.1,8]);
                            // Front Text
                            translate([textX,0.5,2+batteryHeight]) 
                                    linear_extrude(height = 0.5) 
                                        rotate([90,0,0]) text("BAT", ,size=2,halign="left"); 
                        }
                        
                        // DC Power Shield
                        if (dcPowerHeight != 0.0) {
                            translate([-innerSizeX/2+5.5, 0,dcPowerHeight]) cube([ 9, 4,10.8]);
                            // Front Text
                            translate([textX,0.5,4+dcPowerHeight]) rotate([90,0,0]) text("DC", ,size=2,halign="left"); 
                        }
                        
                        // Relay Shield
                        if (relayHeight != 0.0) {
                            translate([ -7.5, 0,2+relayHeight]) cube([15,4,7]);
                            // Front Text
                            translate([textX,0.5,2+relayHeight]) rotate([90,0,0]) text("Relay", ,size=2,halign="left"); 
                        }
                    }
                }
        }
}
